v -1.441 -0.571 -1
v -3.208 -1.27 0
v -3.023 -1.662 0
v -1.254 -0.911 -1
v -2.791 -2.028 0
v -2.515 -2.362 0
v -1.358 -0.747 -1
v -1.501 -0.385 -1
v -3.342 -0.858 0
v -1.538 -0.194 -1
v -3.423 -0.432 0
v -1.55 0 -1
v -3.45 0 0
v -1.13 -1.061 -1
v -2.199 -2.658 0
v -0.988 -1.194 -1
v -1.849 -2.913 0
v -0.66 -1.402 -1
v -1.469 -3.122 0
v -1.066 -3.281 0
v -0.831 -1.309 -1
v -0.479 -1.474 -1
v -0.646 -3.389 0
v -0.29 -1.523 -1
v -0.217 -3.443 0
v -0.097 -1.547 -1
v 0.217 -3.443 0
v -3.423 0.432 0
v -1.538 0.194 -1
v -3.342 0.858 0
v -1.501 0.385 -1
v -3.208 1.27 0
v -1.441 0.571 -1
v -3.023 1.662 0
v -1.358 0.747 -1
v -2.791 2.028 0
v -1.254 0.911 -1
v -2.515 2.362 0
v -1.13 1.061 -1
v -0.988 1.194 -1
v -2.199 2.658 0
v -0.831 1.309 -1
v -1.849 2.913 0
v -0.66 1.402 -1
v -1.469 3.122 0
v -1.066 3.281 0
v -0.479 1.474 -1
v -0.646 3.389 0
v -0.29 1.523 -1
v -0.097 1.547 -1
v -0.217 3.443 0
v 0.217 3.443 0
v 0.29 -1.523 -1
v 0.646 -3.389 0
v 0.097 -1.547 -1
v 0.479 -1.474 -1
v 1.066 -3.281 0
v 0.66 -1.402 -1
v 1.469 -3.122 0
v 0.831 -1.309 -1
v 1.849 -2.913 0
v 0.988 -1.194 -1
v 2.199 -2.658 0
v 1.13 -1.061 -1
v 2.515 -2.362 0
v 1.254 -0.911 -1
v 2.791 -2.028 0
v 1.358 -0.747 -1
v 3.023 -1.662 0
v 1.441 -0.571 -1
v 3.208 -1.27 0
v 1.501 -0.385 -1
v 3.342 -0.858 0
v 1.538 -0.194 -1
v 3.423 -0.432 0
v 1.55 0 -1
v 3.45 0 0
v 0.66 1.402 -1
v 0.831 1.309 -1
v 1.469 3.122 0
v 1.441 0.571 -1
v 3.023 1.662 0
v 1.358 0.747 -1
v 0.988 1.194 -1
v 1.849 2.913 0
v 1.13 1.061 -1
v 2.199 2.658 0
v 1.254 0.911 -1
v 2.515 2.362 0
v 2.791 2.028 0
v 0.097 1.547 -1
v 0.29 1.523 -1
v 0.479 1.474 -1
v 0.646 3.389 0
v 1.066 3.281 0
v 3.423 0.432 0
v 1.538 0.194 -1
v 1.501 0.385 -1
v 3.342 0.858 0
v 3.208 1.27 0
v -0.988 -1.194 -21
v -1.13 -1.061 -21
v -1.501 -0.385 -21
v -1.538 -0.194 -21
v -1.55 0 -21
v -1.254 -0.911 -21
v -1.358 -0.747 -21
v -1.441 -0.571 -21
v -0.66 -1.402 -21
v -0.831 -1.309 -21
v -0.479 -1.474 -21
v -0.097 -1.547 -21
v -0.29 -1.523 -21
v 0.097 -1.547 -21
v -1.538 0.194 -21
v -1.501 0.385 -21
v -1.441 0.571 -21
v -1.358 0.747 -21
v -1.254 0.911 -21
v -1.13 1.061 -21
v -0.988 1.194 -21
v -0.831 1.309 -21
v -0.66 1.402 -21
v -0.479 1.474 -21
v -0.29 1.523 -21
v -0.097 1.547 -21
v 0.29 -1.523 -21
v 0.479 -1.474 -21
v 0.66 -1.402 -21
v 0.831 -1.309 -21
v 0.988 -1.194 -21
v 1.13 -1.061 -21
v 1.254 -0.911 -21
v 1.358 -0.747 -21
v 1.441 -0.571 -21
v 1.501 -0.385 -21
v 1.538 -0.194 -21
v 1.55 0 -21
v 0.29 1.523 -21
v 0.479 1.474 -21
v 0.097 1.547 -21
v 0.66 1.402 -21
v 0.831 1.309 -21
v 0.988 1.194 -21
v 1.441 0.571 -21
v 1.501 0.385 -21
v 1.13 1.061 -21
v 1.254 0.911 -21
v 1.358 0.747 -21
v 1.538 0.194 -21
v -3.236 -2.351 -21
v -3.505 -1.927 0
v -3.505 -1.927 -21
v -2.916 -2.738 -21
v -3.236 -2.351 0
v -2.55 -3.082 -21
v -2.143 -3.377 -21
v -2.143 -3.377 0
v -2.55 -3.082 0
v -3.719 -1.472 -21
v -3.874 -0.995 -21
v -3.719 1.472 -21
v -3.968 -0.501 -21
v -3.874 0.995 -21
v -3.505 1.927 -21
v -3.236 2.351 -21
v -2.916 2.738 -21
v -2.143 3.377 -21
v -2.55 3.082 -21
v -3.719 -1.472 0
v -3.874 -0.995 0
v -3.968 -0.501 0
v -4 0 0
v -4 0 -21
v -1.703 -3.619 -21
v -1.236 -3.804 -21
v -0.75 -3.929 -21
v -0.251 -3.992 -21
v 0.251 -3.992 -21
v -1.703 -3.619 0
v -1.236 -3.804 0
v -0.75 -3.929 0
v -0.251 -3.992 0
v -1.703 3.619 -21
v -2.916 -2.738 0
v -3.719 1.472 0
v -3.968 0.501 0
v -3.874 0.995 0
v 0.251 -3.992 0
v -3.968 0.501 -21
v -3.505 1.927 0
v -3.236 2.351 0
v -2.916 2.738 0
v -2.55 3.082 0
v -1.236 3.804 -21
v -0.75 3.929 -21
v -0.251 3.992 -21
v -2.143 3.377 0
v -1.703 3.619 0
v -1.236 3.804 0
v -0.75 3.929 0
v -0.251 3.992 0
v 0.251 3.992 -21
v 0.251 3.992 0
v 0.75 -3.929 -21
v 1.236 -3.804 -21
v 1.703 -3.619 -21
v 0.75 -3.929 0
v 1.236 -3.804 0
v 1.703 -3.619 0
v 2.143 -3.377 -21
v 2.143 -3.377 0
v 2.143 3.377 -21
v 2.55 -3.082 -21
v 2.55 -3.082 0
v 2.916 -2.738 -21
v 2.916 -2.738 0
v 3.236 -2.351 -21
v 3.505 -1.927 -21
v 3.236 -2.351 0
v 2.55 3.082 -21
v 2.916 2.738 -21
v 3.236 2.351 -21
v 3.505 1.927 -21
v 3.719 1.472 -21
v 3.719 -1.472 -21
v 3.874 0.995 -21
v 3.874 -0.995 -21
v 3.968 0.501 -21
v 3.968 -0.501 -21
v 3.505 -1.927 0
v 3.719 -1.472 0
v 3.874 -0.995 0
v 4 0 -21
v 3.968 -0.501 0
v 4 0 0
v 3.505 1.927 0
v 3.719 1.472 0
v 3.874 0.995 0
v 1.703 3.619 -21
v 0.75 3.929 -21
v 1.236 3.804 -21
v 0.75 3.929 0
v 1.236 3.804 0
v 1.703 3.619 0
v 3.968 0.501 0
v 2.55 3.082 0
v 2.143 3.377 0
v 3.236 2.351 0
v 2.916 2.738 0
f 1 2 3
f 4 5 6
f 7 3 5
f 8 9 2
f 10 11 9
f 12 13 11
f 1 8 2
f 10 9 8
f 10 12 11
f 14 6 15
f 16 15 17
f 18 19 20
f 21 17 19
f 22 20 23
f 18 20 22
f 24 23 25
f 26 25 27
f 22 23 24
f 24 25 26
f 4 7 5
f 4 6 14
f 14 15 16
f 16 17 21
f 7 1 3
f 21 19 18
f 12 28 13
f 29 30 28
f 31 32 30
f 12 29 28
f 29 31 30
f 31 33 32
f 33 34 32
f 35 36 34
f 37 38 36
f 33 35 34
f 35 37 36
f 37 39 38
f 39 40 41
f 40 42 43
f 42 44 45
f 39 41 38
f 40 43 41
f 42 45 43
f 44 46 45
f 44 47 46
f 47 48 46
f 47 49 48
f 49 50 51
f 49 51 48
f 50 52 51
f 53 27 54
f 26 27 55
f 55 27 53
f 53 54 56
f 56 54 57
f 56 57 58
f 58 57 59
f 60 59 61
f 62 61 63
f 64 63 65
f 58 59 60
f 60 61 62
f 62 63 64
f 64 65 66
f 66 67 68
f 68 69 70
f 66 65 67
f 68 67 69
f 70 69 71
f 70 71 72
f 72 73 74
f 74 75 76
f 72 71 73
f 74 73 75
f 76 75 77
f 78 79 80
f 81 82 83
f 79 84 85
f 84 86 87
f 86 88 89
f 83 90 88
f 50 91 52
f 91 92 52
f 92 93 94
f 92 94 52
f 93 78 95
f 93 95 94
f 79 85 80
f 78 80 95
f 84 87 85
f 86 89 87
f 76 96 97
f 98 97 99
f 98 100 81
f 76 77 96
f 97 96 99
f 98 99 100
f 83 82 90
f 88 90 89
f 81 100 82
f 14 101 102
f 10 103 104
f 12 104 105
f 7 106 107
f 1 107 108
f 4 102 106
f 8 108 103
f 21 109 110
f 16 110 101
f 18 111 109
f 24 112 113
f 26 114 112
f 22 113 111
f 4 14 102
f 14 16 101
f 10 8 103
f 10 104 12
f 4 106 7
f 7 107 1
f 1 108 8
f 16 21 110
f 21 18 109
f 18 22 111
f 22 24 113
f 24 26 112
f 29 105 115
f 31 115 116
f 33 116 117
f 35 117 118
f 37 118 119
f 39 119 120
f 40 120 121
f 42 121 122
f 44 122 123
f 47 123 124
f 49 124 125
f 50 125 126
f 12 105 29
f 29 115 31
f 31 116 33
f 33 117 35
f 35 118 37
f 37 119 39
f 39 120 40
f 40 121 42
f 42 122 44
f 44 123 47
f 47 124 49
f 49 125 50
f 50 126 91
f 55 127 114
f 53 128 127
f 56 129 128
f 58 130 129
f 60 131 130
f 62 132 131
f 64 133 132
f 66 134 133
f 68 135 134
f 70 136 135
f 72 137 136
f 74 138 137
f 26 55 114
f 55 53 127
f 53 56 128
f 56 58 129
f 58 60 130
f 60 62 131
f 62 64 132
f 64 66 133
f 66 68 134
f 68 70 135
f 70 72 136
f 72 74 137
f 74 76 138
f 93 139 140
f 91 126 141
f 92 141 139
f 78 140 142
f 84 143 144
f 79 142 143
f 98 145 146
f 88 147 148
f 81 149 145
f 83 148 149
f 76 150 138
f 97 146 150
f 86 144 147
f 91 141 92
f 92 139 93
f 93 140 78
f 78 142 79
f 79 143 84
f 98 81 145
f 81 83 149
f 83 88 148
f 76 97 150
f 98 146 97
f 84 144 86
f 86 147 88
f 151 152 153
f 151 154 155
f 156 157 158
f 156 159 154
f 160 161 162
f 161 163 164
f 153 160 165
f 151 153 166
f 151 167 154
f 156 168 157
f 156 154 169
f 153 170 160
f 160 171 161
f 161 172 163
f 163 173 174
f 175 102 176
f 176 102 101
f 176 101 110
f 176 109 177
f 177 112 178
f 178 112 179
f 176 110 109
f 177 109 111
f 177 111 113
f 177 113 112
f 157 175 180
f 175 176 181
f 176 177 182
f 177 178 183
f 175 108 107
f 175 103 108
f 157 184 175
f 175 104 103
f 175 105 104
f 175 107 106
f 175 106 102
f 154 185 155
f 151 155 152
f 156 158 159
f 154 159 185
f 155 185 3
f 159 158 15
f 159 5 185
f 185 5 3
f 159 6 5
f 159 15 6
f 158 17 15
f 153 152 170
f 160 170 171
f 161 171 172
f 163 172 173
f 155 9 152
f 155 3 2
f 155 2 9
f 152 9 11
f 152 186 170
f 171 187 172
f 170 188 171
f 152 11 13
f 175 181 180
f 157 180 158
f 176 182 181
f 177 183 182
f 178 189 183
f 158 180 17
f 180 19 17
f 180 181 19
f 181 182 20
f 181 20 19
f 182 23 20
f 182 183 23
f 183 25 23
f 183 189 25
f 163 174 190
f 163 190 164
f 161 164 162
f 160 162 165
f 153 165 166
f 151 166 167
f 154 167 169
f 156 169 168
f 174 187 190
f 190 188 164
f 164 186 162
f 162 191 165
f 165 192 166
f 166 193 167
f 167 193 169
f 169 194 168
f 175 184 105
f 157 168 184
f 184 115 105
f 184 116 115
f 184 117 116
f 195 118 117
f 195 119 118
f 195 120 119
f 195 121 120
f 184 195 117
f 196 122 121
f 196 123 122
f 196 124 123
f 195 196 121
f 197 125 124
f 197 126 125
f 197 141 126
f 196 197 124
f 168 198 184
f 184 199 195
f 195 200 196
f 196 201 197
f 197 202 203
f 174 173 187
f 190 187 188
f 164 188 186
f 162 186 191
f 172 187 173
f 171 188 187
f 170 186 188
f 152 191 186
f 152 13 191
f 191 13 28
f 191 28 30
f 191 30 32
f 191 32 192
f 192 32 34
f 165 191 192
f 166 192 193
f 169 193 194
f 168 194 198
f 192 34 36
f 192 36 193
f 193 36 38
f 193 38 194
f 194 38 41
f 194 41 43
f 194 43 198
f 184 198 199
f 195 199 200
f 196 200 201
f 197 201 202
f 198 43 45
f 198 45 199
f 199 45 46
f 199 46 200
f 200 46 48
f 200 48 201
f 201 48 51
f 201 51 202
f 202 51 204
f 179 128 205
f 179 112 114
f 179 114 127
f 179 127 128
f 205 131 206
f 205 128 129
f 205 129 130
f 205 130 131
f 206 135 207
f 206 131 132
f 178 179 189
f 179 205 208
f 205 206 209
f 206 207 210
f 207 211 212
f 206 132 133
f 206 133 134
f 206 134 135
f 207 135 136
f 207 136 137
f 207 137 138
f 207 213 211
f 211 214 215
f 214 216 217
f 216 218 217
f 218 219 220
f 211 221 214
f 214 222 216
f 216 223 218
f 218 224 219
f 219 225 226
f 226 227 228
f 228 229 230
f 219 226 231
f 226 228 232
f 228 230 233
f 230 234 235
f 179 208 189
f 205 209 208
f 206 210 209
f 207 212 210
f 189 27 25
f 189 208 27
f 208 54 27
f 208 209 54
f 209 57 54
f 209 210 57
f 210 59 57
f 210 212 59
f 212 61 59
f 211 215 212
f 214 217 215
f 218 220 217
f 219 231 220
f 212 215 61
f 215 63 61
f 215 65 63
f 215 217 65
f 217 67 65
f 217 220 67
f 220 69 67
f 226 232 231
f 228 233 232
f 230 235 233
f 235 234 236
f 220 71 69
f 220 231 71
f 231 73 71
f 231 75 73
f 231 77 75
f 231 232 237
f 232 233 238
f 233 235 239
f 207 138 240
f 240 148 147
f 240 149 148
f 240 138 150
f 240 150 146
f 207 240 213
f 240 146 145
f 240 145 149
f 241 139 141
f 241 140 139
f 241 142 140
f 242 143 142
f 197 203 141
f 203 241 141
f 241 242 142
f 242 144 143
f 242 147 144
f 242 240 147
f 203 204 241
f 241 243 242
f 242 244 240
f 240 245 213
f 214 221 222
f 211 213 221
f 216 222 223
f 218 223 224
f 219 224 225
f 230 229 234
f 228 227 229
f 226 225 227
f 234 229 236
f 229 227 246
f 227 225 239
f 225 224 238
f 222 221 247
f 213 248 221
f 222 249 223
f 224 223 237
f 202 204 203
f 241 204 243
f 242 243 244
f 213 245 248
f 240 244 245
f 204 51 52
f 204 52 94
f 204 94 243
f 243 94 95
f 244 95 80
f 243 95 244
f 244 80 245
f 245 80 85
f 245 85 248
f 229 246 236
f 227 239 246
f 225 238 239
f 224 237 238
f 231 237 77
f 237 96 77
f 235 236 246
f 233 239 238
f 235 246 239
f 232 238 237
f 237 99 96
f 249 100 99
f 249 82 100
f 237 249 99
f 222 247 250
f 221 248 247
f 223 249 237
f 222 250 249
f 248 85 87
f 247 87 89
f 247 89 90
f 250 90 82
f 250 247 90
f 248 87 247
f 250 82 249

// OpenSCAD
$fn = 50;

difference() {
	union() {
		translate(v = [0, 0, -21.0]) {
			cylinder(h = 21, r = 4.0);
		}
	}
	union() {
		translate(v = [0, 0, 0]) {
			rotate(a = [0, 0, 0]) {
				difference() {
					union() {
						translate(v = [0, 0, -24.0]) {
							cylinder(h = 24, r = 1.25);
						}
						translate(v = [0, 0, -1.0]) {
							cylinder(h = 1.0, r1 = 1.55, r2 = 3.45);
						}
						translate(v = [0, 0, -24.0]) {
							cylinder(h = 24, r = 1.55);
						}
						translate(v = [0, 0, -24.0]) {
							cylinder(h = 24, r = 1.25);
						}
					}
					union();
				}
			}
		}
	}
}
